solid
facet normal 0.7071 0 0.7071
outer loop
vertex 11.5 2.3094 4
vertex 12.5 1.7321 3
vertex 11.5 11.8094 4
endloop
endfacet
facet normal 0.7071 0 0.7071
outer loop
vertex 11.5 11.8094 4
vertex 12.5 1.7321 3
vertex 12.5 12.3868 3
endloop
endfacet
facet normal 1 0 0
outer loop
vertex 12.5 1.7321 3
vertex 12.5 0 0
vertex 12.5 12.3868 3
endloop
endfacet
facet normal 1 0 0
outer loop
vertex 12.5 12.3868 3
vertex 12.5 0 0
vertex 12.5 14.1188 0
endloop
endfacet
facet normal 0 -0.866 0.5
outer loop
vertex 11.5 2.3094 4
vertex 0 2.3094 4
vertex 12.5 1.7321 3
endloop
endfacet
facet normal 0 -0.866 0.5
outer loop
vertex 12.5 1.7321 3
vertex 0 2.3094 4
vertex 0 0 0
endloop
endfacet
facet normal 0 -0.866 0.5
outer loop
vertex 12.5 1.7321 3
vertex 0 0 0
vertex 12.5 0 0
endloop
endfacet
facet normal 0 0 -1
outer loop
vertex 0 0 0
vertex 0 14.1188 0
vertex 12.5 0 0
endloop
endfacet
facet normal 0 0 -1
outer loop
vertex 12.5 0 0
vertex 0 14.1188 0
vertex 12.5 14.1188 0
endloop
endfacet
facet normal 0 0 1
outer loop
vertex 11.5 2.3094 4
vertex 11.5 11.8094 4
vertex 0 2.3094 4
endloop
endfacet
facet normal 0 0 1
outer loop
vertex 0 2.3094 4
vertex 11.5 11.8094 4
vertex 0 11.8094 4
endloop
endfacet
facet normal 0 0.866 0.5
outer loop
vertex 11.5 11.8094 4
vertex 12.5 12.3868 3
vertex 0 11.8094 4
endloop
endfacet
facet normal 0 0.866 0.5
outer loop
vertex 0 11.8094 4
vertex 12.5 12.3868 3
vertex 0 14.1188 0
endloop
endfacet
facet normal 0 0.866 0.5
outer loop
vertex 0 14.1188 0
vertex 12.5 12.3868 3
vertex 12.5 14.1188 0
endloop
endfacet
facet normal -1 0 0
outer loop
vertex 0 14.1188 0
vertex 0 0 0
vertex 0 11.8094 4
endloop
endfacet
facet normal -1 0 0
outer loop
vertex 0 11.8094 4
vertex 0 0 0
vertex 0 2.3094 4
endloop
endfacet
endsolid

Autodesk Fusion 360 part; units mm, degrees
sketch "Sketch1" plane through (0, 0, 0) normal (1, 0, 0) x (0, 1, 0)
  line L0 (0, 0) -> (2.3094, 4)
  line L1 (2.3094, 4) -> (11.8094, 4)
  line L2 (11.8094, 4) -> (14.1188, 0)
  line L3 (14.1188, 0) -> (0, 0)
  dimension "d1" = 4
  dimension "d2" = 9.5
  dimension "d3" = 60
extrude "Extrude1" add sketch "Sketch1" along normal blind 12.5
chamfer "Chamfer1" distance 1 angle 45 1 edges at (12.5, 7.0594, 4)
